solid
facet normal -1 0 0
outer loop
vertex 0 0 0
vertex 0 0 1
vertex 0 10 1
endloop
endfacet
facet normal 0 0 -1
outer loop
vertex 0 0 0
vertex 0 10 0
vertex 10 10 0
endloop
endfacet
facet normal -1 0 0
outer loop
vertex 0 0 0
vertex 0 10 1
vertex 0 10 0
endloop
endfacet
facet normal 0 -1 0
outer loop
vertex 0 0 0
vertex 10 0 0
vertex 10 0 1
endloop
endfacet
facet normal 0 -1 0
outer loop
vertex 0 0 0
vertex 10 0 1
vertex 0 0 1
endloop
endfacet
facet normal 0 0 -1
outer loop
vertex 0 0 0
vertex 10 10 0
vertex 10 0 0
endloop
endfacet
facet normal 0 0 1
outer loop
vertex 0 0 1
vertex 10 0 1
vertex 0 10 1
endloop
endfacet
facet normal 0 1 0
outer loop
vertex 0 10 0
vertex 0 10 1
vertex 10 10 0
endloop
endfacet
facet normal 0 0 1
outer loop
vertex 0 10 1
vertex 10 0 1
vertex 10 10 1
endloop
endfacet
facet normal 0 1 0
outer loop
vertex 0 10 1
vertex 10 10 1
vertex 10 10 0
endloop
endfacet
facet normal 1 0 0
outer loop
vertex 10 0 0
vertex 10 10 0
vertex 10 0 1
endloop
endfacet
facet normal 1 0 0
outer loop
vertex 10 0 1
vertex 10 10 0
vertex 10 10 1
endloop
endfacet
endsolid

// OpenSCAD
/* Warning, this is a very basic generator with a lot of approximation 
input data : [FCCSP, 4JC, 10x10mm, 69, , A, C04-25043A]
generated by com.zoubworld.electronics.cad.model3d.Basic
Date : Sun Feb 15 10:50:49 CET 2026
*/

//body
color("black")
translate([0,0,0])
cube([10.0,10.0,1.0], center=false);
